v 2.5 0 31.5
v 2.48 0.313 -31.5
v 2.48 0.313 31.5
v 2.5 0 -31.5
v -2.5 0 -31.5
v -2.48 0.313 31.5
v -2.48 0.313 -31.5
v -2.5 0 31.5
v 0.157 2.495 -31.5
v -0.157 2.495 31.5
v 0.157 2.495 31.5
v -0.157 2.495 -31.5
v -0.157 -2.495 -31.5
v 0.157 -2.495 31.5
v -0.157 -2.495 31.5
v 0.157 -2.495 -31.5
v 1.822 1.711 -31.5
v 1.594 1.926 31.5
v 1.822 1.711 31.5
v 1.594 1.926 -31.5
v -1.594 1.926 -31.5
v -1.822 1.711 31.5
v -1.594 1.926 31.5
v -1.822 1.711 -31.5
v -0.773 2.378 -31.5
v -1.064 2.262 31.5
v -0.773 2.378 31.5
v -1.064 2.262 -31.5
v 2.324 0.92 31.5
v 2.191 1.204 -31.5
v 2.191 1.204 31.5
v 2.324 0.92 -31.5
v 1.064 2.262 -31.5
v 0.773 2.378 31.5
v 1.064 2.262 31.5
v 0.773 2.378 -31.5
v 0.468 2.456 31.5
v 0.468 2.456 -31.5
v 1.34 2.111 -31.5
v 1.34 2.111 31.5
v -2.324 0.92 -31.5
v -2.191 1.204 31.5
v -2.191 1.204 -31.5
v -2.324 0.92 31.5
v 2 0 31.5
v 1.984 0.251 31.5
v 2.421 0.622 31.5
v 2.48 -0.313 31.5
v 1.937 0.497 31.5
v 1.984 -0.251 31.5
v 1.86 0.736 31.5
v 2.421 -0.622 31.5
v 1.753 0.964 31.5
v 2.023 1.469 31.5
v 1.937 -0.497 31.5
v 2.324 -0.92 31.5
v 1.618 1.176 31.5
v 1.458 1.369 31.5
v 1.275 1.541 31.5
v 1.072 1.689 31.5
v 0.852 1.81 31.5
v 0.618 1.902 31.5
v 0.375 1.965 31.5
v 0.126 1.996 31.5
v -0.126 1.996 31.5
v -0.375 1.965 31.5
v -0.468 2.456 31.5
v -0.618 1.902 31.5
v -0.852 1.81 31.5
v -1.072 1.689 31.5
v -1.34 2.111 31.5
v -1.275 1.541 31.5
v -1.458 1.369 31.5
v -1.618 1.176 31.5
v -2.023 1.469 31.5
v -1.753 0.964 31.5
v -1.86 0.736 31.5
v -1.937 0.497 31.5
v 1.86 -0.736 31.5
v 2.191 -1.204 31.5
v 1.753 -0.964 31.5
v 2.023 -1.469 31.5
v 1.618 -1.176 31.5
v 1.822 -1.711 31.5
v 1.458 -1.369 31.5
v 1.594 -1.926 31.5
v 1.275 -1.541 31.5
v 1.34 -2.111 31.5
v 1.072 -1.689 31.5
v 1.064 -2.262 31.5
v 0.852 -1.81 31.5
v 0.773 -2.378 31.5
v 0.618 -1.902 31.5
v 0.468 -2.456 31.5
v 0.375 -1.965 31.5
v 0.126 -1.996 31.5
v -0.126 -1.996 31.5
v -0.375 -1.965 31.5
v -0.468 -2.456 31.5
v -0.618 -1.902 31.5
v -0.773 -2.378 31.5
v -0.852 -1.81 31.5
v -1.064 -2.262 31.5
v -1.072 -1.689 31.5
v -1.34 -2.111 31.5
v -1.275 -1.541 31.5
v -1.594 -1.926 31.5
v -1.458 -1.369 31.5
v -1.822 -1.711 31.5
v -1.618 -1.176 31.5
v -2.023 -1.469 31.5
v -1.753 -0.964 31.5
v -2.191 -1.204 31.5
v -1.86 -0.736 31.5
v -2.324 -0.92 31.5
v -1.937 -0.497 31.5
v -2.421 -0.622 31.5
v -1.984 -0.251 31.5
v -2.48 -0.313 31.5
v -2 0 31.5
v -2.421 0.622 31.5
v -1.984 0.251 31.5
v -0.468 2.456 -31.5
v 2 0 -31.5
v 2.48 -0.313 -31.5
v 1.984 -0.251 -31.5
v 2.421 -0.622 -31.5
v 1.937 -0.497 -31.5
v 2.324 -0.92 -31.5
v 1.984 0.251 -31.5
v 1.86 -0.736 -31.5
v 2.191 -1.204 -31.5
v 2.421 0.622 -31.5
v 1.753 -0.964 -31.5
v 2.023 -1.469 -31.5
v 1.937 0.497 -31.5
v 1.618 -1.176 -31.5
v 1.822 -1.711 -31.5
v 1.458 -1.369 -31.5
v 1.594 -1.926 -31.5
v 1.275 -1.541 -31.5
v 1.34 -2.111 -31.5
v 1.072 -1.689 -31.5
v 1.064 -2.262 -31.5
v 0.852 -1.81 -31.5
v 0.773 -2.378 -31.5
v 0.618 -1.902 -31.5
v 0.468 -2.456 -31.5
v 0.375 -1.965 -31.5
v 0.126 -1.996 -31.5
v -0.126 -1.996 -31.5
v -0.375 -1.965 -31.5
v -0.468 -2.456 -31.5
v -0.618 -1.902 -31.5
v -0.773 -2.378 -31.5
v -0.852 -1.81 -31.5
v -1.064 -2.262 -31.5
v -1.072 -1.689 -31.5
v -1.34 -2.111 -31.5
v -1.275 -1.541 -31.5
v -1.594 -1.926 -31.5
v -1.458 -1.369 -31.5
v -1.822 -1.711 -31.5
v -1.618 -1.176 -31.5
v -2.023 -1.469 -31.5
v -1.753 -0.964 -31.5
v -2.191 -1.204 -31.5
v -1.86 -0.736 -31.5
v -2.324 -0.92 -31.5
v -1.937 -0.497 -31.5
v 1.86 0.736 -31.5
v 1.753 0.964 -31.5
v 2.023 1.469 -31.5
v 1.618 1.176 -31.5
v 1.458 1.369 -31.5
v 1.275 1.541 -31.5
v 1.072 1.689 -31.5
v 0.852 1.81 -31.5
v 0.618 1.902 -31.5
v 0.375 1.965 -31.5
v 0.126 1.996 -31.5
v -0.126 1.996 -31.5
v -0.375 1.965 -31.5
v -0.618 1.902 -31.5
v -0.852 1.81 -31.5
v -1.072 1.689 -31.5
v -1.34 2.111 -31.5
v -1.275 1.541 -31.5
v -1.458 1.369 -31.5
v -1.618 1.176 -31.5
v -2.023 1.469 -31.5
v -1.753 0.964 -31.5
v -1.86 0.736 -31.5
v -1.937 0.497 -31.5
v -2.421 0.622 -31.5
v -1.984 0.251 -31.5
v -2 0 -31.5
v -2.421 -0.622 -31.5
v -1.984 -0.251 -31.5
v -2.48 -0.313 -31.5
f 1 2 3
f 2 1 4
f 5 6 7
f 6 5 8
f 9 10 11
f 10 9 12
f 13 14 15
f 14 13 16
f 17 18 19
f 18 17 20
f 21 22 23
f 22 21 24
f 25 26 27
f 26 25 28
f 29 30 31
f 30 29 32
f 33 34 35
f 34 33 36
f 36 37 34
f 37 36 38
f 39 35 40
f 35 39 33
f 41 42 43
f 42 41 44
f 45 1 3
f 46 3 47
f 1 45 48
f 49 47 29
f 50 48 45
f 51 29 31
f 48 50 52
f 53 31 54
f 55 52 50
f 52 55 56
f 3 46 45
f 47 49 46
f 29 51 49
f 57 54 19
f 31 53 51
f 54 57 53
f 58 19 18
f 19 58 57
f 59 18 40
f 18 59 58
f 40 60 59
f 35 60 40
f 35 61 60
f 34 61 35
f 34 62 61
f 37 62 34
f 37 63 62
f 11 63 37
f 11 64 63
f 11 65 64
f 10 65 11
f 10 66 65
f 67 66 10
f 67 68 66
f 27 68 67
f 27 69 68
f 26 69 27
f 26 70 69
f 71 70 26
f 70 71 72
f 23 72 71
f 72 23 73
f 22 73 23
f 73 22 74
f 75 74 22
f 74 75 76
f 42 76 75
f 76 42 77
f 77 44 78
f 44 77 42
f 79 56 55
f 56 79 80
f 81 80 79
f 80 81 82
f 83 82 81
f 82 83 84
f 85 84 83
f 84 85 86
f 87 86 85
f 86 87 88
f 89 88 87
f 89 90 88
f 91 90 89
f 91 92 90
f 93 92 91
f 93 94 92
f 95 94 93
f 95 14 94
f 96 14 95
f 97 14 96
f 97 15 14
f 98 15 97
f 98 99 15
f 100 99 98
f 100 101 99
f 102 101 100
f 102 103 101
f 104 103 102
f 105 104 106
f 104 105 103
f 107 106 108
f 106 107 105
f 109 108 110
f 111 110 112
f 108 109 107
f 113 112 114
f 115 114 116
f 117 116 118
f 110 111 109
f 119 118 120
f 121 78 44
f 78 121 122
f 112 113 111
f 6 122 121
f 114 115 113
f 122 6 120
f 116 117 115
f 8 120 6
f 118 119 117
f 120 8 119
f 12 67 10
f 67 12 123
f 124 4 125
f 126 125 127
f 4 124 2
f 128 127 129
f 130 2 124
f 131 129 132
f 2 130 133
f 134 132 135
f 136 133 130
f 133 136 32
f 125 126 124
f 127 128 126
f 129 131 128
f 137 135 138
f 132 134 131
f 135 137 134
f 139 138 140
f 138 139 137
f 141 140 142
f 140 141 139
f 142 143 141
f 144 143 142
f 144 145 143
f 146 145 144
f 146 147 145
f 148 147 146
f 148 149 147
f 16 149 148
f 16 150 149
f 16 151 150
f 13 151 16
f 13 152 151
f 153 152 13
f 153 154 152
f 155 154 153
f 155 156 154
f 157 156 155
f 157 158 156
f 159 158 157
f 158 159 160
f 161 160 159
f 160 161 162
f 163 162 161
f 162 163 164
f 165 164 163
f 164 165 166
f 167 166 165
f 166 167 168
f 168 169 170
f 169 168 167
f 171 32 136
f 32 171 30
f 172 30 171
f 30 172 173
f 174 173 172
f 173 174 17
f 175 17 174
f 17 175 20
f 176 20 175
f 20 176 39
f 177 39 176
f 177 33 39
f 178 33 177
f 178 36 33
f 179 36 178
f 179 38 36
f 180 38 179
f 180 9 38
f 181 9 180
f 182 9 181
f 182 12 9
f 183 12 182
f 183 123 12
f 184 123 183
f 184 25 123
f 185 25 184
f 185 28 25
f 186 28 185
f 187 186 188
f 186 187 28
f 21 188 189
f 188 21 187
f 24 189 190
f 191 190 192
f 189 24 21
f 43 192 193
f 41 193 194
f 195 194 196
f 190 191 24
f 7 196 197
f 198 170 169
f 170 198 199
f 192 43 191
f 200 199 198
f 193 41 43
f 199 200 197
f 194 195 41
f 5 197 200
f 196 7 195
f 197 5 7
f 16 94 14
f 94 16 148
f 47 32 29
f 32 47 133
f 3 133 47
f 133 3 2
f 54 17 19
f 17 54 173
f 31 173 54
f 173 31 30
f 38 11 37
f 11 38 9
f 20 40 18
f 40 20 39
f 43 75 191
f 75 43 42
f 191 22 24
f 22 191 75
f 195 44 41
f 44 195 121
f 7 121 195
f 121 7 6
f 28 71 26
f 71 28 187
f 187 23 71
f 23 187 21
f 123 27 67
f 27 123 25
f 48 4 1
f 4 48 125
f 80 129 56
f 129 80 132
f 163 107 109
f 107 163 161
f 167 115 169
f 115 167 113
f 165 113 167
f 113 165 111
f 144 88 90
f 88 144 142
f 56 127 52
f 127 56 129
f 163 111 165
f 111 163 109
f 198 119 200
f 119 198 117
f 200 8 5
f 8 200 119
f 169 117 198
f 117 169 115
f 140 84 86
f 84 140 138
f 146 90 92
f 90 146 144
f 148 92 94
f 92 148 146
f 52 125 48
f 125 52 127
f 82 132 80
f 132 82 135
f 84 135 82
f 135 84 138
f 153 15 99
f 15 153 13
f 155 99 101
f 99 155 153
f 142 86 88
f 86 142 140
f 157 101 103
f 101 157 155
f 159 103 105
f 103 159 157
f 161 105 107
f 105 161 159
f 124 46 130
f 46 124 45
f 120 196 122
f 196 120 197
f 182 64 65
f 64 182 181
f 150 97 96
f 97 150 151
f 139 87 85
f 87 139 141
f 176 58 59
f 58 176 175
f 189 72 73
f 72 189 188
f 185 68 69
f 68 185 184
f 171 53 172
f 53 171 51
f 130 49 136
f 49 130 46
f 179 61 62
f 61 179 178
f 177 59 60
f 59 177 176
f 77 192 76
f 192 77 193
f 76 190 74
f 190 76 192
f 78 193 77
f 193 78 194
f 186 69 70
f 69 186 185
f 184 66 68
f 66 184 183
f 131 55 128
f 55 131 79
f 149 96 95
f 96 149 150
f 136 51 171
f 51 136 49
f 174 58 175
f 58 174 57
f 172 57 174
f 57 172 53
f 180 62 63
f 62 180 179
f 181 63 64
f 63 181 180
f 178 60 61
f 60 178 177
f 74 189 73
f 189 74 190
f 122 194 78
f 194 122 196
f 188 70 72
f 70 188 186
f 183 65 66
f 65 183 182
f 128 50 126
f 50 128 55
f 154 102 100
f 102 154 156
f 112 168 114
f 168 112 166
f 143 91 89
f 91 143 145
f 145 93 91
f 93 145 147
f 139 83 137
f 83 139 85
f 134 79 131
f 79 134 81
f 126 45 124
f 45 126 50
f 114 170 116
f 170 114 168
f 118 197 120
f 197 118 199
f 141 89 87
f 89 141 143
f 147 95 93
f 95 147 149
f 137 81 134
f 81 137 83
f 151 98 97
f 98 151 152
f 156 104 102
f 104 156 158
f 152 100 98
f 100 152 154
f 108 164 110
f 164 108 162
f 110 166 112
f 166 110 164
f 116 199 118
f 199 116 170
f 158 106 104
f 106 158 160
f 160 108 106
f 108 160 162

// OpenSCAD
$fn = 50;


difference() {
	union() {
		translate(v = [0, 0, -31.5000000000]) {
			cylinder(h = 63, r = 2.5000000000);
		}
	}
	union() {
		translate(v = [0, 0, -100.0000000000]) {
			cylinder(h = 200, r = 2.0000000000);
		}
	}
}
